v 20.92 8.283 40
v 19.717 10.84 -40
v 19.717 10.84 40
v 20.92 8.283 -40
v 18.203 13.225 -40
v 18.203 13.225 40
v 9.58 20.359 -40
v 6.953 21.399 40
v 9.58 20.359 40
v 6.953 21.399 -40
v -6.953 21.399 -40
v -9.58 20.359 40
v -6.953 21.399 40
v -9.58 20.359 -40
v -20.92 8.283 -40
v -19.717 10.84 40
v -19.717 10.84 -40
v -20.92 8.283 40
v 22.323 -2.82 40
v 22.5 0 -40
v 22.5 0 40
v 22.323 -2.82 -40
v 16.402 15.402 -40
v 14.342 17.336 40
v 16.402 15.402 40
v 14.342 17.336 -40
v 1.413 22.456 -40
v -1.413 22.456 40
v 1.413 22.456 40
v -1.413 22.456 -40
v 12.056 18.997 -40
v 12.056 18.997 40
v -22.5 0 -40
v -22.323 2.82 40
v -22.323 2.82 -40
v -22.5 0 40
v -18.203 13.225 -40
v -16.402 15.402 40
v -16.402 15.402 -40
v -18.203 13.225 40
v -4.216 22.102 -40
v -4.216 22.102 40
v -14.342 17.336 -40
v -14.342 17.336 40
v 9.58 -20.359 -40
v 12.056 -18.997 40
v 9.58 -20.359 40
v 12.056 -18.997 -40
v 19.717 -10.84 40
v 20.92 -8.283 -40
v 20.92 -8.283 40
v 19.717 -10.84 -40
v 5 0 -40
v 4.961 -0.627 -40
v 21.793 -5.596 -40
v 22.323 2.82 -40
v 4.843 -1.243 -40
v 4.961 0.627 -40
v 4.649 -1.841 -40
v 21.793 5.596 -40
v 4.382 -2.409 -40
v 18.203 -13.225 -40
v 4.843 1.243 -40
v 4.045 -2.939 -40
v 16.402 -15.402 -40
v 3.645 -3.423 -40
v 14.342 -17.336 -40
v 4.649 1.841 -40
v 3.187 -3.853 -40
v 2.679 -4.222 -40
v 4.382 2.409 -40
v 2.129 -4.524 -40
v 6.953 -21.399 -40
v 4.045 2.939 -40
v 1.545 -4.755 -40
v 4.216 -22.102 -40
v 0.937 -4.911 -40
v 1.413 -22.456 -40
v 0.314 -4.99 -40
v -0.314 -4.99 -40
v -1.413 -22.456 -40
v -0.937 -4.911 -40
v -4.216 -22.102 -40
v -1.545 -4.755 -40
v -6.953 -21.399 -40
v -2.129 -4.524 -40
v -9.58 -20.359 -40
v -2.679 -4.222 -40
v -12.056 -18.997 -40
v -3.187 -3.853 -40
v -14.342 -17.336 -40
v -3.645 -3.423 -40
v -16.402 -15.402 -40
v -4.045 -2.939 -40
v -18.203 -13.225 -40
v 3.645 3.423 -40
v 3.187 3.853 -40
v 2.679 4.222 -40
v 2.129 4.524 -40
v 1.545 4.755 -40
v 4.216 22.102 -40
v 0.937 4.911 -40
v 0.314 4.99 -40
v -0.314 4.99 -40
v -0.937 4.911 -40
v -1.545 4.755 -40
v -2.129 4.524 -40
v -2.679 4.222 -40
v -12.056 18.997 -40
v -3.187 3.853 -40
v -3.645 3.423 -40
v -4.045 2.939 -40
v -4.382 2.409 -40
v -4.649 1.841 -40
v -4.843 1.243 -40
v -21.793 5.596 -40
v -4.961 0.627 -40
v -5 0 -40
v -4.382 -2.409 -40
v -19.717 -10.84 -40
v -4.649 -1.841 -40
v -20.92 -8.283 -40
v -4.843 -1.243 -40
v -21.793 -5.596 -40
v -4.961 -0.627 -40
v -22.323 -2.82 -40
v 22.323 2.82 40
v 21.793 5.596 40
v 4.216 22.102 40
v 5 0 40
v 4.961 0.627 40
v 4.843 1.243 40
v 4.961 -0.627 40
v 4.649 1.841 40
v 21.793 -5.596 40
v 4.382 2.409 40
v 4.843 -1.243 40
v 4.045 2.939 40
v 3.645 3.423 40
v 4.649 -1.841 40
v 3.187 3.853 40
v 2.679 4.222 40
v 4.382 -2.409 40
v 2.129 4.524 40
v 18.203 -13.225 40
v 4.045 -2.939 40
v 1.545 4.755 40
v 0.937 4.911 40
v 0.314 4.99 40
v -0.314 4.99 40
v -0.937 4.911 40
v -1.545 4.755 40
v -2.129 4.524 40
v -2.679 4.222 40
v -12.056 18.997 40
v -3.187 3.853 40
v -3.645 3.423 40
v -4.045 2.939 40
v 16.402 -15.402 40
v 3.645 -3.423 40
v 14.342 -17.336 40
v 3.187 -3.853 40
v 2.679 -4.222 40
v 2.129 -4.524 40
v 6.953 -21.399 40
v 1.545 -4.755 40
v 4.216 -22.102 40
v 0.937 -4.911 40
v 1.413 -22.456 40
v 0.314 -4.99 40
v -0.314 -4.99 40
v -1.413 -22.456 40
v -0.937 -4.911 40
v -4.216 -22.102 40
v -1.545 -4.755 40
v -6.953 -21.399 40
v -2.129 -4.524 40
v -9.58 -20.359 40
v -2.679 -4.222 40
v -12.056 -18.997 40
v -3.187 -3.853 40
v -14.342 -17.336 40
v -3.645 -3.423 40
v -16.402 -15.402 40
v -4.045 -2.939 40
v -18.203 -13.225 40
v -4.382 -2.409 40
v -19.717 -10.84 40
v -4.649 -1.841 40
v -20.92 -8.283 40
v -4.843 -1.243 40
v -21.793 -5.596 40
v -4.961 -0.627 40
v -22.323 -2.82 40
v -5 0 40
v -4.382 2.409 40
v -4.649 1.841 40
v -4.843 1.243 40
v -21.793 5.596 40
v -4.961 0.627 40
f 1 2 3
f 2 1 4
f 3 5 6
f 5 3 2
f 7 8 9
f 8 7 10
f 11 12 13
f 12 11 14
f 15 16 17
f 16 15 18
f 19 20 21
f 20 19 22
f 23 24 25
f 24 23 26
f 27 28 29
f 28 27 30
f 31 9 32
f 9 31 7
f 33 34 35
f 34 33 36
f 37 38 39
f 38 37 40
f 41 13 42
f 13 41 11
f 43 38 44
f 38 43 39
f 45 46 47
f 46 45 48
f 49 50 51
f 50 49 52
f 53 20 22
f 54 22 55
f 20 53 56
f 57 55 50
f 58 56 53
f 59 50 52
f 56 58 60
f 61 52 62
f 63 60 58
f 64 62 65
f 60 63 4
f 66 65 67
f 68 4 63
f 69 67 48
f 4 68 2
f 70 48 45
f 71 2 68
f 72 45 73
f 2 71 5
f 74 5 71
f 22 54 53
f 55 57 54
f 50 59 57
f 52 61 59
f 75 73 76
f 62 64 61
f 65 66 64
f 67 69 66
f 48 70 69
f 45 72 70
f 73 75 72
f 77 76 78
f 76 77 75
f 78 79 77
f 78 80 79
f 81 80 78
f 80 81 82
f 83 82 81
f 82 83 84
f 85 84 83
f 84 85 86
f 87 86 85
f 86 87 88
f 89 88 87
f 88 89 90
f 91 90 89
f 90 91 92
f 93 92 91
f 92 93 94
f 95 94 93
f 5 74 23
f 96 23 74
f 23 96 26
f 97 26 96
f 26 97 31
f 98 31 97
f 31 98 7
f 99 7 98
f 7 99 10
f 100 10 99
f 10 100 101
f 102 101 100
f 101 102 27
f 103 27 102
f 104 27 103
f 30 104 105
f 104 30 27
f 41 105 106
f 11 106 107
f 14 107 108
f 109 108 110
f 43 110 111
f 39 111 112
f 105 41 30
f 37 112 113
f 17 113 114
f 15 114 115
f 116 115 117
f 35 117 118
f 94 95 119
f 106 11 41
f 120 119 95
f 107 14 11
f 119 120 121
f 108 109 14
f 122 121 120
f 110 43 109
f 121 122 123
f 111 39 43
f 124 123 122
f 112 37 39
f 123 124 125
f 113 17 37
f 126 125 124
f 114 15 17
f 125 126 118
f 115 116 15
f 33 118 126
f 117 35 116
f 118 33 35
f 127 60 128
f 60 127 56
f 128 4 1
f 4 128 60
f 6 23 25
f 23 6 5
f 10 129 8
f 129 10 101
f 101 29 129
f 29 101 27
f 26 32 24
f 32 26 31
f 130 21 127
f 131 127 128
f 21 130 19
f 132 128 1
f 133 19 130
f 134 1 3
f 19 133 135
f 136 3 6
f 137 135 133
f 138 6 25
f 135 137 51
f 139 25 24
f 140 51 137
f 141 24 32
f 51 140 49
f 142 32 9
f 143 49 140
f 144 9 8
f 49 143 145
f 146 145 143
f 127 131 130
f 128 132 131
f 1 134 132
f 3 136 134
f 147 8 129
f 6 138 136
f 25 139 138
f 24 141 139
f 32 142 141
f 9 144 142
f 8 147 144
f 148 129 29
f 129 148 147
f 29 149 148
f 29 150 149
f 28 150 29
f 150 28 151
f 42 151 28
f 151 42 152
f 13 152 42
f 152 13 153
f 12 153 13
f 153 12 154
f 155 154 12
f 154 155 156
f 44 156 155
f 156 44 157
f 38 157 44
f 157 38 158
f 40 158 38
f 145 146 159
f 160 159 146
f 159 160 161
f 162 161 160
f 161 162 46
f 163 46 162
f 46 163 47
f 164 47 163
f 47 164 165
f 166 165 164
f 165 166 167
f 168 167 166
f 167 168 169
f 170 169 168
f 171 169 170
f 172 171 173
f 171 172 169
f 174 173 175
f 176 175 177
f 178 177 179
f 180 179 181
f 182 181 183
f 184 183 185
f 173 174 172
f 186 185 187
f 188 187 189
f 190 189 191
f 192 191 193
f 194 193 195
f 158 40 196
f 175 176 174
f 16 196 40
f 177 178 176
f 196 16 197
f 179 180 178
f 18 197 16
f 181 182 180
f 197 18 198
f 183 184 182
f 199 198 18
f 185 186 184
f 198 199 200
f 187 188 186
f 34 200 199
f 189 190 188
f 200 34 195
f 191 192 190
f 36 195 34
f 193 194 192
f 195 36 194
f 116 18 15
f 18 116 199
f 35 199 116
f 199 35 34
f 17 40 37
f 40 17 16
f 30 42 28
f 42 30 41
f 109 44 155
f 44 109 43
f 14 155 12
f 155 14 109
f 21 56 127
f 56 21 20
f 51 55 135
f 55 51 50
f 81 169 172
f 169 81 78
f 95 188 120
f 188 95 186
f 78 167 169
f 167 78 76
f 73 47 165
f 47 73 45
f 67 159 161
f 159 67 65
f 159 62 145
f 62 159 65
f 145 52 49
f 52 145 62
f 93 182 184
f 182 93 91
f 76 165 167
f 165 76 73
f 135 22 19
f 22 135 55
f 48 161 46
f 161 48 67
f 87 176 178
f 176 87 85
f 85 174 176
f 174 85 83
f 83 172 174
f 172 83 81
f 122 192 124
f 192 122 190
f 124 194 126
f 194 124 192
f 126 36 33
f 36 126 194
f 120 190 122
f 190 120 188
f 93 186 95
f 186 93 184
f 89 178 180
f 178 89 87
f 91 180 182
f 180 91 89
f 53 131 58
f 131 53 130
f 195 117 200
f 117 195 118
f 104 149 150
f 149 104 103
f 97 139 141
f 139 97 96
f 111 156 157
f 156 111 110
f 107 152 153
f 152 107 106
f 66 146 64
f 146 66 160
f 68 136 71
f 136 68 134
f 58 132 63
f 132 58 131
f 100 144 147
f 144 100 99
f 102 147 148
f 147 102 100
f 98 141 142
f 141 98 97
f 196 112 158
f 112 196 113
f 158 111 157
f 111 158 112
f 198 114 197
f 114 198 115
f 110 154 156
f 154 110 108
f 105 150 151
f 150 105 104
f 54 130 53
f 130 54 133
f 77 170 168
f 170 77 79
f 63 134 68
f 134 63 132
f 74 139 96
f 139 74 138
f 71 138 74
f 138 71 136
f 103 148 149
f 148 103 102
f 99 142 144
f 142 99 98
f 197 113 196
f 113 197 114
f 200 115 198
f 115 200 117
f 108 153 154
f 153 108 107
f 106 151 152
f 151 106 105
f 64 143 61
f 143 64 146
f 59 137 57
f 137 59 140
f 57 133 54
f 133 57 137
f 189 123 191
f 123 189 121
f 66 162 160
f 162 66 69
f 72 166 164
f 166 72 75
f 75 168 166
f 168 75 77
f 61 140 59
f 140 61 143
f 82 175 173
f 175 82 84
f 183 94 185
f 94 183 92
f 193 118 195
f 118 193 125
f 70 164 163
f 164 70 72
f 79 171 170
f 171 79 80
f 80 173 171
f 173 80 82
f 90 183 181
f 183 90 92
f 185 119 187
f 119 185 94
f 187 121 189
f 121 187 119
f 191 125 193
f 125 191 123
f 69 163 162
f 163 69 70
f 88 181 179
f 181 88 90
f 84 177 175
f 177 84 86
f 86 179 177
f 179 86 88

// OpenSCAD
$fn = 50;


difference() {
	union() {
		translate(v = [0, 0, -40.0000000000]) {
			cylinder(h = 80, r = 22.5000000000);
		}
	}
	union() {
		translate(v = [0, 0, -100.0000000000]) {
			cylinder(h = 200, r = 5);
		}
	}
}
